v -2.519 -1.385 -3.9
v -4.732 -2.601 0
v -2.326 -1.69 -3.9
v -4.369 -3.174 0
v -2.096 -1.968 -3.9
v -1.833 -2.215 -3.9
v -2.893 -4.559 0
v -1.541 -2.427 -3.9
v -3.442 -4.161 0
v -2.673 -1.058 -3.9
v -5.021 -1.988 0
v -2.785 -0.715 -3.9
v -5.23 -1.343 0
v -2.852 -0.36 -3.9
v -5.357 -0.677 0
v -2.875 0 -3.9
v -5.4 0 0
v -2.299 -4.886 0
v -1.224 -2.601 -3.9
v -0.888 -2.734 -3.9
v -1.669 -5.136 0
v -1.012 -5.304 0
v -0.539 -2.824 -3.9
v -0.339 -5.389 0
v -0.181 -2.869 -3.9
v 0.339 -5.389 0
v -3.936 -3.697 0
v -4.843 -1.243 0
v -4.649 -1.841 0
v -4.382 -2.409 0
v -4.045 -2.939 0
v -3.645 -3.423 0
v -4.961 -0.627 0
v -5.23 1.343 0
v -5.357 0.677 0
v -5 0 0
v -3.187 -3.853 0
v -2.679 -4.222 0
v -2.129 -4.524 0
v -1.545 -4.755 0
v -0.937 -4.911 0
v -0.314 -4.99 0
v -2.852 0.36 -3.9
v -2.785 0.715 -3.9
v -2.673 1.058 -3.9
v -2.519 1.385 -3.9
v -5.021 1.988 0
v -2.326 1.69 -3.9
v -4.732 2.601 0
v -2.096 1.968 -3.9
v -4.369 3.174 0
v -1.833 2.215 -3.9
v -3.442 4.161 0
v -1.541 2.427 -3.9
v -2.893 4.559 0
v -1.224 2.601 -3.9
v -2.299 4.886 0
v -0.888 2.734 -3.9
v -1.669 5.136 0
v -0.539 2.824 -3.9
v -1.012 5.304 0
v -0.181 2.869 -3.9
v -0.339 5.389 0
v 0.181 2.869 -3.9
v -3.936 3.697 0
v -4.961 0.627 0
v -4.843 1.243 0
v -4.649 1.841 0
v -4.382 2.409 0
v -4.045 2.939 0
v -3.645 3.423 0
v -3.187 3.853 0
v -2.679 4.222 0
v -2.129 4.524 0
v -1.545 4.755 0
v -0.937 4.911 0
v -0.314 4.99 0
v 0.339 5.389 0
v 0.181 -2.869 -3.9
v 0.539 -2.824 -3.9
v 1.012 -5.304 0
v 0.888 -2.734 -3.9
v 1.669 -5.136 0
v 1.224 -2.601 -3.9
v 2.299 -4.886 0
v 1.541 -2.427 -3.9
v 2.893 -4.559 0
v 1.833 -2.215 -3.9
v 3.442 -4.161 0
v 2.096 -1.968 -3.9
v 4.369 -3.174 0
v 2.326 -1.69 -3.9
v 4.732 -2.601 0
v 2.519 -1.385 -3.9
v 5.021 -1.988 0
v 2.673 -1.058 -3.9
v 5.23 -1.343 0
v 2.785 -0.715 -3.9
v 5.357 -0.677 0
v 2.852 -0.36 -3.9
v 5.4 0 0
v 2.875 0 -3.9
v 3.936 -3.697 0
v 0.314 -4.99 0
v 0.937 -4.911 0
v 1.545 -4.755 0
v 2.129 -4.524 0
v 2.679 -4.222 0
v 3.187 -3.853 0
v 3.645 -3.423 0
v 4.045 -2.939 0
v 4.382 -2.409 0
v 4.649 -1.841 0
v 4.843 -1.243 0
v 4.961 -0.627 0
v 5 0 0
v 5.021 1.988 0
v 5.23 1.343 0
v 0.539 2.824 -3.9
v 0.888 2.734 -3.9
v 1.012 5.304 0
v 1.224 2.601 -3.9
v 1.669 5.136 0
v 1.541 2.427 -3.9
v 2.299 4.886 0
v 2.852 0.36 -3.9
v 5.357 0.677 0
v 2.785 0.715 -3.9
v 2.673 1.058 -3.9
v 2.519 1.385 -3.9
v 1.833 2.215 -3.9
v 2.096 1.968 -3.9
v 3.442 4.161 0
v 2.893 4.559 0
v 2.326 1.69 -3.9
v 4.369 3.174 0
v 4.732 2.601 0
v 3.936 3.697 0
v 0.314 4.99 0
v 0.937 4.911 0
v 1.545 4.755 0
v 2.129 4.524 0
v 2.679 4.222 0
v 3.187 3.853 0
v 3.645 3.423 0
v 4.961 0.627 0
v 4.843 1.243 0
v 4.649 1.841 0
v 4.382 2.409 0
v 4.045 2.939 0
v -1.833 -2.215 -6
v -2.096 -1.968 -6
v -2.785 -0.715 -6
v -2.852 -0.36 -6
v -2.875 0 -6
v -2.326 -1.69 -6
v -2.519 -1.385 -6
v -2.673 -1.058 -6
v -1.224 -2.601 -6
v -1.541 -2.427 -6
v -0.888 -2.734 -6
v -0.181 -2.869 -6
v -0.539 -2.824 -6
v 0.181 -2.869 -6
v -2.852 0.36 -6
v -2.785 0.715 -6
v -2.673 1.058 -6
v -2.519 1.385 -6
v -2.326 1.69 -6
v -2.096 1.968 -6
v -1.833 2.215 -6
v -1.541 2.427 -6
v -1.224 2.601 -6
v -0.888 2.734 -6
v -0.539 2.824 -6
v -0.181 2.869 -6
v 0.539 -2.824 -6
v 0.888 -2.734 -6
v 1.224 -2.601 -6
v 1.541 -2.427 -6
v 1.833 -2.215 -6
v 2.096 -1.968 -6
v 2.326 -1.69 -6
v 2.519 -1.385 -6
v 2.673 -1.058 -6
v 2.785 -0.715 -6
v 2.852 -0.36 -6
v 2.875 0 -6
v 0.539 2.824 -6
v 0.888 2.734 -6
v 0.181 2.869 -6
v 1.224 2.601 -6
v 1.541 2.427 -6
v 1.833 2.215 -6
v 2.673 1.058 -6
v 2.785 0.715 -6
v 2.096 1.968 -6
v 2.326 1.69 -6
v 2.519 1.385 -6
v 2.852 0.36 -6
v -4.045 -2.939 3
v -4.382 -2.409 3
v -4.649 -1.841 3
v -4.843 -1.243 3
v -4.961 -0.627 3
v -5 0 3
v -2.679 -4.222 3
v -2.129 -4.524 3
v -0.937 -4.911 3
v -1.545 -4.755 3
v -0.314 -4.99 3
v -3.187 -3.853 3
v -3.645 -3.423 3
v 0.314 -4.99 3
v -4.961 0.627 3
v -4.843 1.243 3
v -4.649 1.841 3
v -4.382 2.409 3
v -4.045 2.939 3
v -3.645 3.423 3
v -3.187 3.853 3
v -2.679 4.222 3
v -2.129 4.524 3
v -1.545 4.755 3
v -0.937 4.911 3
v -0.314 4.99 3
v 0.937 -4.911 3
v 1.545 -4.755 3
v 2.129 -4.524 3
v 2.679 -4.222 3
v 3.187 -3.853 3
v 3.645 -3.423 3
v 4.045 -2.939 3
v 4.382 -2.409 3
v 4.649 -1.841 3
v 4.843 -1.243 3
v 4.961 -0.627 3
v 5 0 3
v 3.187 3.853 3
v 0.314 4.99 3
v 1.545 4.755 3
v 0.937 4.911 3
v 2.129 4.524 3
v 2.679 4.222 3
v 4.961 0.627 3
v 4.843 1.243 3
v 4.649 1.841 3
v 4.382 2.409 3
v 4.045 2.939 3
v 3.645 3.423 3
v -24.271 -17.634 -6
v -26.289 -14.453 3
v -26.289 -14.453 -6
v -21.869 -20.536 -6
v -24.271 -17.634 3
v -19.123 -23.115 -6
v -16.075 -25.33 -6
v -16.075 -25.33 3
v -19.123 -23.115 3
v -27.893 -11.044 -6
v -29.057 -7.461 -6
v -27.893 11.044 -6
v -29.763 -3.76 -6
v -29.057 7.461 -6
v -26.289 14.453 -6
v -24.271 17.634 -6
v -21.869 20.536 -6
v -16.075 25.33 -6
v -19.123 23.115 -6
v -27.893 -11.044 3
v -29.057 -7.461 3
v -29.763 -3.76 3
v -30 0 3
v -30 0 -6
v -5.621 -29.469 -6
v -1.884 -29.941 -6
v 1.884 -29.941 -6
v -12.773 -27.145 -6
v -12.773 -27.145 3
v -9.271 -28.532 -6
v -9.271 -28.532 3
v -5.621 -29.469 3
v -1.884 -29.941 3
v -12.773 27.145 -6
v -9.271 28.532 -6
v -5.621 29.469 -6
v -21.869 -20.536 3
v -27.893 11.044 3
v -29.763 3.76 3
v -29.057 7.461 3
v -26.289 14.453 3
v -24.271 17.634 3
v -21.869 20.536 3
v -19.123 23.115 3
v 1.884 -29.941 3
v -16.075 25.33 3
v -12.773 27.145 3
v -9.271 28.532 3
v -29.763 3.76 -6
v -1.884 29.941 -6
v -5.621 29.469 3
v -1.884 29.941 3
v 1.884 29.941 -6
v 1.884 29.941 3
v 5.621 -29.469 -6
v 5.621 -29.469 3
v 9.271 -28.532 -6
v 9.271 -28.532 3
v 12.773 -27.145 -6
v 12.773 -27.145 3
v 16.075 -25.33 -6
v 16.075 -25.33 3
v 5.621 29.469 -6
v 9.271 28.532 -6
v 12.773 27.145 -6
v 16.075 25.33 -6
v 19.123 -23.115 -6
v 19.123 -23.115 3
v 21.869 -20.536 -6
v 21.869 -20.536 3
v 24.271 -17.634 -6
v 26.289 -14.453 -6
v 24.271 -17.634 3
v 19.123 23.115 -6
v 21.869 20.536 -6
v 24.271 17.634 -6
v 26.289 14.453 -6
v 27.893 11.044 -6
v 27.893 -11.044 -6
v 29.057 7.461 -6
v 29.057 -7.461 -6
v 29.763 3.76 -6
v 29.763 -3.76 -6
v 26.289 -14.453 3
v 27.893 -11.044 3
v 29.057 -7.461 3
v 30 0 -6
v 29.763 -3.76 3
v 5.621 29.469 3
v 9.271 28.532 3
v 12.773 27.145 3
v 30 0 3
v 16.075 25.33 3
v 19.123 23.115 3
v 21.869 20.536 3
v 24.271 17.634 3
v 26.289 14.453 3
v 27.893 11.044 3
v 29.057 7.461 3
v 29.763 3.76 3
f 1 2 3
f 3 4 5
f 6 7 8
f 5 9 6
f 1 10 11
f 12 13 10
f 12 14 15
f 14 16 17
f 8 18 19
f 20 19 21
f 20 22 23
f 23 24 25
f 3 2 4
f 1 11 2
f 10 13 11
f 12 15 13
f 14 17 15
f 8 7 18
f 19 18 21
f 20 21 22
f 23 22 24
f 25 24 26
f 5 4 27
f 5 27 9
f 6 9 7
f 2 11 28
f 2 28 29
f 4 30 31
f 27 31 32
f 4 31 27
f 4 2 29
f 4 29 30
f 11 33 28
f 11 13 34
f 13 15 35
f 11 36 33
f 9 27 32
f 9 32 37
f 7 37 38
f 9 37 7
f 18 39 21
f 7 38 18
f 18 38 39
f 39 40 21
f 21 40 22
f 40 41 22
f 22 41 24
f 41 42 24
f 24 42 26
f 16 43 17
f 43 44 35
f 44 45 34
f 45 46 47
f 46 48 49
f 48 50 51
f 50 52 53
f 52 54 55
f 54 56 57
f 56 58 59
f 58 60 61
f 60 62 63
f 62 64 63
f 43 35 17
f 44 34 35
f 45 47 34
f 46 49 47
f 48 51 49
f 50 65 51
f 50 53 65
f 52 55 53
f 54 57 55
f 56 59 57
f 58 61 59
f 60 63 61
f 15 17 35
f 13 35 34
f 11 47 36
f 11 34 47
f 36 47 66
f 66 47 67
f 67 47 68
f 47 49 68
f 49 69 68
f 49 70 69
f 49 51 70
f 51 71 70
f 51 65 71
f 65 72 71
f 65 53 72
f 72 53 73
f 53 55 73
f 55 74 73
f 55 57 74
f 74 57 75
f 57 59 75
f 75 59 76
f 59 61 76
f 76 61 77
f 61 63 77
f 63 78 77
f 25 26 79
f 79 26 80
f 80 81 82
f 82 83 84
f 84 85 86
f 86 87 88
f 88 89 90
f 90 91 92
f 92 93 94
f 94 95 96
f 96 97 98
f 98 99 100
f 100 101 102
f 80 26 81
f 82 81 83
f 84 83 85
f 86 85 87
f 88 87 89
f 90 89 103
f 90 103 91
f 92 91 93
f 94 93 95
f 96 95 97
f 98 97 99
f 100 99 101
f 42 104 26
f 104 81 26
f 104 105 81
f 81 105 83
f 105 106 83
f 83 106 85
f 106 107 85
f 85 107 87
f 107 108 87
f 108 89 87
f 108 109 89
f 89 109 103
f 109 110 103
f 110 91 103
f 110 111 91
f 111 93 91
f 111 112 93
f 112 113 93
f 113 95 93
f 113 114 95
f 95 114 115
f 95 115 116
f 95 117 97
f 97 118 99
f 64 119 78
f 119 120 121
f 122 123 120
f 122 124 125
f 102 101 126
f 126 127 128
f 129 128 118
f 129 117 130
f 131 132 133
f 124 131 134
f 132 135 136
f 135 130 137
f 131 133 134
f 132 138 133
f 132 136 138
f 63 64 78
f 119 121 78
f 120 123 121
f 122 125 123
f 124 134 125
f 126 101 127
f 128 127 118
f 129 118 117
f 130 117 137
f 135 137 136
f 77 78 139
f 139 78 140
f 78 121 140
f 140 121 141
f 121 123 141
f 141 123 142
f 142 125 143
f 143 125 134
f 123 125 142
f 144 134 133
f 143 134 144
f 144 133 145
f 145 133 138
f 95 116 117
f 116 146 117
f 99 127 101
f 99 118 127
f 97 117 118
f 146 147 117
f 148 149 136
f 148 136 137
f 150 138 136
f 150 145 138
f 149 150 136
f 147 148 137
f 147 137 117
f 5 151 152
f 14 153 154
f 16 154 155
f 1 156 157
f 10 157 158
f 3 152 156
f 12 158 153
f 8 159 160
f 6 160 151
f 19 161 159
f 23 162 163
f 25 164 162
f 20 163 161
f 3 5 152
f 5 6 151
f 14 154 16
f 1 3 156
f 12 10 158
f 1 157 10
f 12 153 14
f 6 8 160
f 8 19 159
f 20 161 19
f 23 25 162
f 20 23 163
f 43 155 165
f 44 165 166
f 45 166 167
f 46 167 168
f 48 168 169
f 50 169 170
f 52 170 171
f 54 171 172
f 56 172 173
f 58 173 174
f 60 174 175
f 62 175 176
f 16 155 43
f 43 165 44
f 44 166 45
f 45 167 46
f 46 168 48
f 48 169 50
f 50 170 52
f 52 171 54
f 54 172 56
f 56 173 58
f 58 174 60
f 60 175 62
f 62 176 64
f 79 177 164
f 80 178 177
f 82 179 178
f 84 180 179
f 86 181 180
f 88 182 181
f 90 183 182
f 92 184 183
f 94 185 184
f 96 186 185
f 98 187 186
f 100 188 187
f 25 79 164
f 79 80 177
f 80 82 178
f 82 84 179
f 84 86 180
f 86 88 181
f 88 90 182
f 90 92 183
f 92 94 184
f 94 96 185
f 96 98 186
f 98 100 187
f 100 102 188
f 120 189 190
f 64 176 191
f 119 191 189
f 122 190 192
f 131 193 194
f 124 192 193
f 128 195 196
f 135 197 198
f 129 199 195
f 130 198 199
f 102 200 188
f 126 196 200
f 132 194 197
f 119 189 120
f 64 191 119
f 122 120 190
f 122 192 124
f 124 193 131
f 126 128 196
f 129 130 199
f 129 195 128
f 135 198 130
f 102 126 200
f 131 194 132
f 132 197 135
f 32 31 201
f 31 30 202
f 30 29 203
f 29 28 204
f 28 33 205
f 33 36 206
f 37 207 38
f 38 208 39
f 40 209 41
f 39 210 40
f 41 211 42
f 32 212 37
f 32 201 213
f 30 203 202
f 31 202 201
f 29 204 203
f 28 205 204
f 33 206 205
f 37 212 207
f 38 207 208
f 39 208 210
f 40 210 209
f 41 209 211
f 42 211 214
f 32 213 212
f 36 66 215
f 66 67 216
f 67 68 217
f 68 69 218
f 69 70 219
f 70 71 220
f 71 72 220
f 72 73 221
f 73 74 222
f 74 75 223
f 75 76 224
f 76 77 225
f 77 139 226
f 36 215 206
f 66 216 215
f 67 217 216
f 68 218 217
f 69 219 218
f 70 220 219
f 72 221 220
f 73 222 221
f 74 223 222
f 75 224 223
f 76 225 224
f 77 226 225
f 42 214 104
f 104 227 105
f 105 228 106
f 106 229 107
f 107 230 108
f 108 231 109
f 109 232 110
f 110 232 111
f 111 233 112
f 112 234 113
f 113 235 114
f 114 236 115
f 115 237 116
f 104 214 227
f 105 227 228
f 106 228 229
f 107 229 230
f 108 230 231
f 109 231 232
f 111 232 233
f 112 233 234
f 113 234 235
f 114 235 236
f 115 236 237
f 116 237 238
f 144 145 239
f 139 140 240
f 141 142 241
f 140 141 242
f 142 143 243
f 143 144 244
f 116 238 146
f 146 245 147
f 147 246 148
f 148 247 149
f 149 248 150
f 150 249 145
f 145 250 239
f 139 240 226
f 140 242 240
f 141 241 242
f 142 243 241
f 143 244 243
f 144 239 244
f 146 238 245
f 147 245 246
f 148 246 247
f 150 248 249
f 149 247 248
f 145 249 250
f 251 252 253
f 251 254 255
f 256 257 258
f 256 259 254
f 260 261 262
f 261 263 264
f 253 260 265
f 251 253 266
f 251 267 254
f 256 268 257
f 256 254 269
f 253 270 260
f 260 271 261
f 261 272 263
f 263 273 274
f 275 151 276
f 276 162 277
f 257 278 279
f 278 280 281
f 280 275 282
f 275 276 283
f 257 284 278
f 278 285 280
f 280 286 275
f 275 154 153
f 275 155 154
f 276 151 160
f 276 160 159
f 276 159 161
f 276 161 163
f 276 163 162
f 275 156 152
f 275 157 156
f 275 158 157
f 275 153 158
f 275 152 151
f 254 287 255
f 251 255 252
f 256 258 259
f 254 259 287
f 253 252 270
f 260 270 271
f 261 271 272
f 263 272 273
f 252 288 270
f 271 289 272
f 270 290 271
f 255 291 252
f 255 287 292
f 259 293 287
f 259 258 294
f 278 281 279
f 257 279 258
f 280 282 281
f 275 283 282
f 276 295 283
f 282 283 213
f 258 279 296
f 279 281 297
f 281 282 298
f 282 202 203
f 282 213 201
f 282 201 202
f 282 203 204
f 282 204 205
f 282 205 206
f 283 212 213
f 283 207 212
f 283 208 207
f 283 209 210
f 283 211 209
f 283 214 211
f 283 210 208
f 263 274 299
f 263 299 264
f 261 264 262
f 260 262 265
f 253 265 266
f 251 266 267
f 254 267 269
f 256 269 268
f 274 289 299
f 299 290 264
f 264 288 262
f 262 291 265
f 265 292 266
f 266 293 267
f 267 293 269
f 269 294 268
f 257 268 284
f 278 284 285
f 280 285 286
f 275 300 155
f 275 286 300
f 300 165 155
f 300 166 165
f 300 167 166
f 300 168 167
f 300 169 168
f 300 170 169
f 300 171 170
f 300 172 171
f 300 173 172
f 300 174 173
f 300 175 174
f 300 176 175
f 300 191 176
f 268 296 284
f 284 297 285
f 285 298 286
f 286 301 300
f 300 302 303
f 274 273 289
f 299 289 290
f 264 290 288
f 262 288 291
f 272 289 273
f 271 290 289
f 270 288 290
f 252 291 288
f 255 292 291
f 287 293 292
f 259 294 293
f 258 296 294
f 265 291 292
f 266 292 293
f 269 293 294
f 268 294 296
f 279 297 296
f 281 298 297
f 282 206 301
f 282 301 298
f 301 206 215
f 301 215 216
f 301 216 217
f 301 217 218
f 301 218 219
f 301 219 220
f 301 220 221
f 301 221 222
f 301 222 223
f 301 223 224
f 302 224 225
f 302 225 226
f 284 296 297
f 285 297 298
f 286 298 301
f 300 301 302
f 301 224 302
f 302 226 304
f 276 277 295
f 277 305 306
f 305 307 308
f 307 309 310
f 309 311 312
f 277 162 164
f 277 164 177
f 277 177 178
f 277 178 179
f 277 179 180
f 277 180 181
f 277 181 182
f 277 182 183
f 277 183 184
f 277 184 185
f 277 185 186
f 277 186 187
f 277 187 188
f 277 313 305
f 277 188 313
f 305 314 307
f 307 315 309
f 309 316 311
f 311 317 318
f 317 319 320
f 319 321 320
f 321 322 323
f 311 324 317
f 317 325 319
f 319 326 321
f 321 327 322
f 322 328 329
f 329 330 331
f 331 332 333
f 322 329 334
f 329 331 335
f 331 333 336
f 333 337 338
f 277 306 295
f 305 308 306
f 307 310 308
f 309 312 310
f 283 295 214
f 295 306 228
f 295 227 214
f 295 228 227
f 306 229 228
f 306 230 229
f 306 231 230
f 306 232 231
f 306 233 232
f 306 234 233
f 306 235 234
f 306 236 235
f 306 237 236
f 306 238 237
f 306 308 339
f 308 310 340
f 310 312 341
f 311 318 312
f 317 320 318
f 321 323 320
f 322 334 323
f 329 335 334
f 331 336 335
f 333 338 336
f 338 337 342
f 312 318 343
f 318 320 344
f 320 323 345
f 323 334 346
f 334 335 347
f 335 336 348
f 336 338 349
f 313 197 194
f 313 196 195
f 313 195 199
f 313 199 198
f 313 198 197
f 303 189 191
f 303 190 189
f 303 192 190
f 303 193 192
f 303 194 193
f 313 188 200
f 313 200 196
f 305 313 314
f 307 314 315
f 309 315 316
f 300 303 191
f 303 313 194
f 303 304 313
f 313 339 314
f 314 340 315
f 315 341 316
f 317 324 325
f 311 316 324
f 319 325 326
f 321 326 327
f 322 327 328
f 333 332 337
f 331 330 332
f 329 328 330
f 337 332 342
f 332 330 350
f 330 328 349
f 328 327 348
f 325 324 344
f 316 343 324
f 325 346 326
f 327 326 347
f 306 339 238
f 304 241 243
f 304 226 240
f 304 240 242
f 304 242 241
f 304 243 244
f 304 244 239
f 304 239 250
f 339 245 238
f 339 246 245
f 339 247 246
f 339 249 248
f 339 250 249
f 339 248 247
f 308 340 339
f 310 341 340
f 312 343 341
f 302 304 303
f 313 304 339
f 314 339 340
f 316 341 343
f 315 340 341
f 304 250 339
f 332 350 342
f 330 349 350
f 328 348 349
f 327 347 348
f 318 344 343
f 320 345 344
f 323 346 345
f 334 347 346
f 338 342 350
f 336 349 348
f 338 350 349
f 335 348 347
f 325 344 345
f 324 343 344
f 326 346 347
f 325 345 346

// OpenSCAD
$fn = 50;

difference() {
	union() {
		translate(v = [0, 0, -6.0]) {
			cylinder(h = 9, r = 30.0);
		}
	}
	union() {
		translate(v = [0, 0, 0]) {
			rotate(a = [0, 0, 0]) {
				difference() {
					union() {
						translate(v = [0, 0, -9.0]) {
							cylinder(h = 9, r = 2.6);
						}
						translate(v = [0, 0, -3.9]) {
							cylinder(h = 3.9, r1 = 2.875, r2 = 5.4);
						}
						translate(v = [0, 0, -9.0]) {
							cylinder(h = 9, r = 2.875);
						}
						translate(v = [0, 0, -9.0]) {
							cylinder(h = 9, r = 2.6);
						}
					}
					union();
				}
			}
		}
		#cylinder(h = 3, r = 5.0);
	}
}
